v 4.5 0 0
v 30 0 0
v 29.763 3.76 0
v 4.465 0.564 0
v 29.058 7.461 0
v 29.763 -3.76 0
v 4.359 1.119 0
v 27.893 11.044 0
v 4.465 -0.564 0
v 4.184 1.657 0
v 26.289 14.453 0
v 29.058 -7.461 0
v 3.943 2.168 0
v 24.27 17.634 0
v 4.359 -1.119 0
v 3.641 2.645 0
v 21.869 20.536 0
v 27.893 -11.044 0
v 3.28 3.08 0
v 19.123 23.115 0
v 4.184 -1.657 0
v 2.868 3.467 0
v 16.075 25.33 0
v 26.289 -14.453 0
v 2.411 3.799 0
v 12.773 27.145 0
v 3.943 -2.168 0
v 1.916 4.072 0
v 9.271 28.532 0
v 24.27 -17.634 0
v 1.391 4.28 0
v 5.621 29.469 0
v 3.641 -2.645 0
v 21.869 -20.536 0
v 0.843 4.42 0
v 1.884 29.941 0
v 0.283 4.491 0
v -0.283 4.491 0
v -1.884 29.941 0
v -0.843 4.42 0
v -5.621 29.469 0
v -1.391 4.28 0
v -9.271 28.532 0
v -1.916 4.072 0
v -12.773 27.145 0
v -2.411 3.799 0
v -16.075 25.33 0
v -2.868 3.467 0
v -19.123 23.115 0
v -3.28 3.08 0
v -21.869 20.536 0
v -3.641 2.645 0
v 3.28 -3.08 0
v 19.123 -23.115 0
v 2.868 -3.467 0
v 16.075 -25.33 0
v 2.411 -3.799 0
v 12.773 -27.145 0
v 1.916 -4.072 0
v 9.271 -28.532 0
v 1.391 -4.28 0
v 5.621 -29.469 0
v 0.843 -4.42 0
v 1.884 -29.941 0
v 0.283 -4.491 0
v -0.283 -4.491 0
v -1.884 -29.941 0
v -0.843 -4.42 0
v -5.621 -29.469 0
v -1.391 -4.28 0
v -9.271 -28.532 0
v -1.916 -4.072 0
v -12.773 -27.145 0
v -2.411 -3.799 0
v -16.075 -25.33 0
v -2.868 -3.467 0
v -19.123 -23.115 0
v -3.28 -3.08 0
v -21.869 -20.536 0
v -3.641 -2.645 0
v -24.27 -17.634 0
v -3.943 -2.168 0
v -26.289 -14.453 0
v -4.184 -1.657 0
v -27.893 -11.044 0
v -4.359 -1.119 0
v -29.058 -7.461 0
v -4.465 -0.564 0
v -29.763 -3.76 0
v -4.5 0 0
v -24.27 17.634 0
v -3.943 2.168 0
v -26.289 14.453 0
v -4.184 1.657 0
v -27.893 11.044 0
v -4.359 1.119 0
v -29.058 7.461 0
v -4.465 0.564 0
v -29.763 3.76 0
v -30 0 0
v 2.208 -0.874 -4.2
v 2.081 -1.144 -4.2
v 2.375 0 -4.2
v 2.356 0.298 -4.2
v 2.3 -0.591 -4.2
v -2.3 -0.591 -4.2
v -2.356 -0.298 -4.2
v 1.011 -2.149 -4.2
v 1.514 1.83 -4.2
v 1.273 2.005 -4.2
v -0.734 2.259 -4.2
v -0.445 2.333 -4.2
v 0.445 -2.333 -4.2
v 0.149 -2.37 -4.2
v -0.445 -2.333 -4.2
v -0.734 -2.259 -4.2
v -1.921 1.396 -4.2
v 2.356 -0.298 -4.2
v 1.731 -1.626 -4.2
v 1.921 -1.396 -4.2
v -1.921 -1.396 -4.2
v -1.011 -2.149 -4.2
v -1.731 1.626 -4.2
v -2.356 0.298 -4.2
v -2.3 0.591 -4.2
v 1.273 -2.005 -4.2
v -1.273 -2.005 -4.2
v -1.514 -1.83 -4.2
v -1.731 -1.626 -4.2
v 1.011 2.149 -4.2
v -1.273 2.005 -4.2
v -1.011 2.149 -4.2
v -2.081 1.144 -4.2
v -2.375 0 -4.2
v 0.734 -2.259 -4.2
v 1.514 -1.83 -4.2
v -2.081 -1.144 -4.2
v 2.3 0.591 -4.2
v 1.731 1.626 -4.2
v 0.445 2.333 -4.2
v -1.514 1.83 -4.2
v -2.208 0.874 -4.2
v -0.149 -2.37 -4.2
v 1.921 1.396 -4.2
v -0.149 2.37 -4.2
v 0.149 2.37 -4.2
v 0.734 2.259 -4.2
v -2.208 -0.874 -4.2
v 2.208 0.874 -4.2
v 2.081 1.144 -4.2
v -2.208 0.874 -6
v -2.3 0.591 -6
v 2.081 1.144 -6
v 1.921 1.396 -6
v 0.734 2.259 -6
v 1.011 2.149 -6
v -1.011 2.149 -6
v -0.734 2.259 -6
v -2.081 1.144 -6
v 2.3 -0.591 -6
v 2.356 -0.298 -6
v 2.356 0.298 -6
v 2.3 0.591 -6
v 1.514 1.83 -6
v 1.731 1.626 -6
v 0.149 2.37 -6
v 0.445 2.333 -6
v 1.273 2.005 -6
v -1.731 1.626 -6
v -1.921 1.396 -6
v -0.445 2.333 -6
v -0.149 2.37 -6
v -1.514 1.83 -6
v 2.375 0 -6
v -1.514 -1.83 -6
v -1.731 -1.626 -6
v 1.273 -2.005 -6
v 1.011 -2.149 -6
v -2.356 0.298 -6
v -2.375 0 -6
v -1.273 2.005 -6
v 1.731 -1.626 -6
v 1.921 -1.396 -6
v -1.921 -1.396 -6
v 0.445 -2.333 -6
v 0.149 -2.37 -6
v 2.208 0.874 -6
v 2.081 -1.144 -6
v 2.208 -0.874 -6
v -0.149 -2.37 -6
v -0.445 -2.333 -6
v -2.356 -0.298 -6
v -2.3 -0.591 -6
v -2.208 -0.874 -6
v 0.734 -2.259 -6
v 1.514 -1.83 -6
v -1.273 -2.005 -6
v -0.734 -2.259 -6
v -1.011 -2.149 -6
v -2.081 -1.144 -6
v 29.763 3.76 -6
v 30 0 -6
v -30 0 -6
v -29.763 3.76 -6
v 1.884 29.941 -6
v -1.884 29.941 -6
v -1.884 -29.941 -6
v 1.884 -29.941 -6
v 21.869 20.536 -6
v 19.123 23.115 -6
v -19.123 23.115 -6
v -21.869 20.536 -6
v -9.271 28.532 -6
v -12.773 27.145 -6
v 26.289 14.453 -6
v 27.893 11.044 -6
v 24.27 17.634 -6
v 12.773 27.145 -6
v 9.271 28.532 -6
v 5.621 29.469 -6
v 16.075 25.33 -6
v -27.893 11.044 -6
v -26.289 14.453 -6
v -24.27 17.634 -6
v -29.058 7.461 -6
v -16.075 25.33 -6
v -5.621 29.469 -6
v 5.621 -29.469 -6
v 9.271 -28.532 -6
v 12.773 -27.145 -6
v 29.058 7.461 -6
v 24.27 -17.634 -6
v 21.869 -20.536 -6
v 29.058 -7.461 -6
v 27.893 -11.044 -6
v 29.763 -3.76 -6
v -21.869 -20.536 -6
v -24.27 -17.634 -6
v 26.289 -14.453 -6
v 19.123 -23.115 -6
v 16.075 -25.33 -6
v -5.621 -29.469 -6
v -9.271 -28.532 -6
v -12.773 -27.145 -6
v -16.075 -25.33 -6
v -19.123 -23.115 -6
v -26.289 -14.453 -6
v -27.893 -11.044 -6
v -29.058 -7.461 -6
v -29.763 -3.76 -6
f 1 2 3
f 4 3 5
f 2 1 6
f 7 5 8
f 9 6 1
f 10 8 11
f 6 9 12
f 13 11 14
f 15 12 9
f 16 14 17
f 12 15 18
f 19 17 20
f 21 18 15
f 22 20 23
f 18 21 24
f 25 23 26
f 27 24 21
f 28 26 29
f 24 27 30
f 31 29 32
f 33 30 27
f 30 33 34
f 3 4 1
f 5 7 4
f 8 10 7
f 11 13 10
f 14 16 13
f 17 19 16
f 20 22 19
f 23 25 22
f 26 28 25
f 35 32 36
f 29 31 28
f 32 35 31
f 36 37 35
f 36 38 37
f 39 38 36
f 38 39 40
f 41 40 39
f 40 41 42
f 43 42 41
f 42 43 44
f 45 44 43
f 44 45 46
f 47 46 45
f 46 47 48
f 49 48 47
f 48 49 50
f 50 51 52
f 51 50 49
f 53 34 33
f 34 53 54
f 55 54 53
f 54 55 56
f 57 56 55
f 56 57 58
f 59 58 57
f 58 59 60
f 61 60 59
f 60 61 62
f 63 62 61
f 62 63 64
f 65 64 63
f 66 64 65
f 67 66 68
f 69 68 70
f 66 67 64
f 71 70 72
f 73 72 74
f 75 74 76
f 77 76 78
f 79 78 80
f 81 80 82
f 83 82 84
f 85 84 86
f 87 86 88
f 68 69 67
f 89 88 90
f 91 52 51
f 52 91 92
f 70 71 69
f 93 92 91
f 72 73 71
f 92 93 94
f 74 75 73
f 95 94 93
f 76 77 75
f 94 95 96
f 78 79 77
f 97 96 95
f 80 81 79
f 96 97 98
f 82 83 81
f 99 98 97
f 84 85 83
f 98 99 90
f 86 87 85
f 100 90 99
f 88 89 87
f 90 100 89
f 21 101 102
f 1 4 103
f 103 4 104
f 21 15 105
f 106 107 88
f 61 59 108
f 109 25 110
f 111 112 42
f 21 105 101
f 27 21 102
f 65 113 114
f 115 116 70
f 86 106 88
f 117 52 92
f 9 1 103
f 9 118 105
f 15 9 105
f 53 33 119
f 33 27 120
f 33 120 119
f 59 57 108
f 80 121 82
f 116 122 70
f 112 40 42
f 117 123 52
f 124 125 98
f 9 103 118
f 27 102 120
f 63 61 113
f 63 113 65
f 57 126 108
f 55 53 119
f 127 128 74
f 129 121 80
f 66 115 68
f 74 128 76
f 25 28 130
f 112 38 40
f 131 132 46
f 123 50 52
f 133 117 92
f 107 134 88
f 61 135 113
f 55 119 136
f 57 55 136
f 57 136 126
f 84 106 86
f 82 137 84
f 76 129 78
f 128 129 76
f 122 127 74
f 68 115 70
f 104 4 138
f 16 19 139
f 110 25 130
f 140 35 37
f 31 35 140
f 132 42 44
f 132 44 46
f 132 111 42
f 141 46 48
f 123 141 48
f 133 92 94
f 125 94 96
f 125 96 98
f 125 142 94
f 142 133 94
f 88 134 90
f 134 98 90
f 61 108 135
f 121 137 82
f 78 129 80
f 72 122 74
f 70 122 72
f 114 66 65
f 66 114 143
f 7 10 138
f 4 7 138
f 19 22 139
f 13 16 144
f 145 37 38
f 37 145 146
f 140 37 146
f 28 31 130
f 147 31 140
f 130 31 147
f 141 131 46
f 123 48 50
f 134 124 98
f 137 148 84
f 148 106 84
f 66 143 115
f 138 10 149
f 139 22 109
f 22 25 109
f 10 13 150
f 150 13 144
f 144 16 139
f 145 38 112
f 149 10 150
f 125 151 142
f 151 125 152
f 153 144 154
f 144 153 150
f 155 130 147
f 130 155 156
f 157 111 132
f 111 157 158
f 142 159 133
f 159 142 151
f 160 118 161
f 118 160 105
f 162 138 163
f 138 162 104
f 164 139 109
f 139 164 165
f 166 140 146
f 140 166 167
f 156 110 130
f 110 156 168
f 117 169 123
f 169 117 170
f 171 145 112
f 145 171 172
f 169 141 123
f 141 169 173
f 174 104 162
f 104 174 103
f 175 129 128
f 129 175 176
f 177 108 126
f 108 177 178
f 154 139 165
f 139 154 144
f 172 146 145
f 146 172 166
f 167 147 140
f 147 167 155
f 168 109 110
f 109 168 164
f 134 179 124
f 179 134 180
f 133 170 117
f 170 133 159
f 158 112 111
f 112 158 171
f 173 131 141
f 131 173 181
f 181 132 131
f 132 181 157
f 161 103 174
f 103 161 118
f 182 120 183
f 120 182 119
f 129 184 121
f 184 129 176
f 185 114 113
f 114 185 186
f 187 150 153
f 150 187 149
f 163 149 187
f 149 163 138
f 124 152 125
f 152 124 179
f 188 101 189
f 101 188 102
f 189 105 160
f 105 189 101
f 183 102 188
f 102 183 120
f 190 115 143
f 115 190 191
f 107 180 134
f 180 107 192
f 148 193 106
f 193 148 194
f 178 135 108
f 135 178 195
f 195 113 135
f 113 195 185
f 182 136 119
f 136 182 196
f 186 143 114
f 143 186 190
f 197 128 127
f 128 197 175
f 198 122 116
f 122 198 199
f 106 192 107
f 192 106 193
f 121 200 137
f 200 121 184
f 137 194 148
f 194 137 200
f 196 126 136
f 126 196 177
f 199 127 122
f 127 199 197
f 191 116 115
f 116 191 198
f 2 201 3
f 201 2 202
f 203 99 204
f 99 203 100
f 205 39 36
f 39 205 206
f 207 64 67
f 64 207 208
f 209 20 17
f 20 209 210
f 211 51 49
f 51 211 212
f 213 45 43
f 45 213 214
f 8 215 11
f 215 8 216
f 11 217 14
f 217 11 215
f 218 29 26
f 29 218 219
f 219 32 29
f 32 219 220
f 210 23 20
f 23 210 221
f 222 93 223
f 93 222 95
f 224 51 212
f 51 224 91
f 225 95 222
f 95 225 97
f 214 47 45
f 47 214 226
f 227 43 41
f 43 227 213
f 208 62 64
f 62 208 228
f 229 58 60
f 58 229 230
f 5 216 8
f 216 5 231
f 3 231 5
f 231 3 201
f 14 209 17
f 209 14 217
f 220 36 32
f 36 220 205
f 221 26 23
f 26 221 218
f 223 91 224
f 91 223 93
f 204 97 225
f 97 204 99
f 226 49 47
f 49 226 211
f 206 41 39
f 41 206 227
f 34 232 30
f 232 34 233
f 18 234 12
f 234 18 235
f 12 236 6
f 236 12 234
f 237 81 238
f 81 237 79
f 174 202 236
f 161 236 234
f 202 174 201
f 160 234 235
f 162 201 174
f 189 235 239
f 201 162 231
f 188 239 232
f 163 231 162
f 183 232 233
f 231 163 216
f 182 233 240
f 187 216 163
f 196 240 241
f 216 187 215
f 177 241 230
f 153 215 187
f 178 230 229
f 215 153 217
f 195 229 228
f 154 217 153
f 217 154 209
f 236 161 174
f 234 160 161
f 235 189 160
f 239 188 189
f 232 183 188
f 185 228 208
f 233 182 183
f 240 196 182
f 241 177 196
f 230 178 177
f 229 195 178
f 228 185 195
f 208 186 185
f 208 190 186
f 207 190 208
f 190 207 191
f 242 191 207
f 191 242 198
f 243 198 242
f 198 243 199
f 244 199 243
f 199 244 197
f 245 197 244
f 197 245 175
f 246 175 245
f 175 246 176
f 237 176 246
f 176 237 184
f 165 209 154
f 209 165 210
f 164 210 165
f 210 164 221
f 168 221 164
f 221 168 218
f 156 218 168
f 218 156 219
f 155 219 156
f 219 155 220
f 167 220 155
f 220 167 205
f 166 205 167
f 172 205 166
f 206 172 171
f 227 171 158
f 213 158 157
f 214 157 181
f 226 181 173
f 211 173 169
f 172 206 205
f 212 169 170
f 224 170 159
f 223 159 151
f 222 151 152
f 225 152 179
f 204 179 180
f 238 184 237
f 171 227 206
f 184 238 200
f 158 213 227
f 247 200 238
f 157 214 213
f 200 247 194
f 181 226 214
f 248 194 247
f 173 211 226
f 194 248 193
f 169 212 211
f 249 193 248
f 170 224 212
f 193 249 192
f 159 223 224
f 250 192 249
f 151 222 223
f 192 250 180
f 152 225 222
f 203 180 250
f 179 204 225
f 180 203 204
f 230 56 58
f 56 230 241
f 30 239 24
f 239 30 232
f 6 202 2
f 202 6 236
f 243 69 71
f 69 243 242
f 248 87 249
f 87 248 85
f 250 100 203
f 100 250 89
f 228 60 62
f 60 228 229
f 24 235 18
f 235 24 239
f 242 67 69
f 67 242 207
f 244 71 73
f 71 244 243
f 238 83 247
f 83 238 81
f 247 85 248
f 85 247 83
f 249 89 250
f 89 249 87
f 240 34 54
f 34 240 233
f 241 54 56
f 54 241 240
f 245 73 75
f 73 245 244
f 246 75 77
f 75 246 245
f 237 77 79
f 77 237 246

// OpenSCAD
$fn = 50;


difference() {
	union() {
		translate(v = [0, 0, -6.0000000000]) {
			cylinder(h = 6, r = 30.0000000000);
		}
	}
	union() {
		translate(v = [0, 0, 0]) {
			rotate(a = [0, 0, 0]) {
				difference() {
					union() {
						translate(v = [0, 0, -9.0000000000]) {
							cylinder(h = 9, r = 2.2500000000);
						}
						translate(v = [0, 0, -4.2000000000]) {
							cylinder(h = 4.2000000000, r1 = 2.3750000000, r2 = 4.5000000000);
						}
						translate(v = [0, 0, -9.0000000000]) {
							cylinder(h = 9, r = 2.3750000000);
						}
						translate(v = [0, 0, -9.0000000000]) {
							cylinder(h = 9, r = 2.2500000000);
						}
					}
					union();
				}
			}
		}
	}
}
